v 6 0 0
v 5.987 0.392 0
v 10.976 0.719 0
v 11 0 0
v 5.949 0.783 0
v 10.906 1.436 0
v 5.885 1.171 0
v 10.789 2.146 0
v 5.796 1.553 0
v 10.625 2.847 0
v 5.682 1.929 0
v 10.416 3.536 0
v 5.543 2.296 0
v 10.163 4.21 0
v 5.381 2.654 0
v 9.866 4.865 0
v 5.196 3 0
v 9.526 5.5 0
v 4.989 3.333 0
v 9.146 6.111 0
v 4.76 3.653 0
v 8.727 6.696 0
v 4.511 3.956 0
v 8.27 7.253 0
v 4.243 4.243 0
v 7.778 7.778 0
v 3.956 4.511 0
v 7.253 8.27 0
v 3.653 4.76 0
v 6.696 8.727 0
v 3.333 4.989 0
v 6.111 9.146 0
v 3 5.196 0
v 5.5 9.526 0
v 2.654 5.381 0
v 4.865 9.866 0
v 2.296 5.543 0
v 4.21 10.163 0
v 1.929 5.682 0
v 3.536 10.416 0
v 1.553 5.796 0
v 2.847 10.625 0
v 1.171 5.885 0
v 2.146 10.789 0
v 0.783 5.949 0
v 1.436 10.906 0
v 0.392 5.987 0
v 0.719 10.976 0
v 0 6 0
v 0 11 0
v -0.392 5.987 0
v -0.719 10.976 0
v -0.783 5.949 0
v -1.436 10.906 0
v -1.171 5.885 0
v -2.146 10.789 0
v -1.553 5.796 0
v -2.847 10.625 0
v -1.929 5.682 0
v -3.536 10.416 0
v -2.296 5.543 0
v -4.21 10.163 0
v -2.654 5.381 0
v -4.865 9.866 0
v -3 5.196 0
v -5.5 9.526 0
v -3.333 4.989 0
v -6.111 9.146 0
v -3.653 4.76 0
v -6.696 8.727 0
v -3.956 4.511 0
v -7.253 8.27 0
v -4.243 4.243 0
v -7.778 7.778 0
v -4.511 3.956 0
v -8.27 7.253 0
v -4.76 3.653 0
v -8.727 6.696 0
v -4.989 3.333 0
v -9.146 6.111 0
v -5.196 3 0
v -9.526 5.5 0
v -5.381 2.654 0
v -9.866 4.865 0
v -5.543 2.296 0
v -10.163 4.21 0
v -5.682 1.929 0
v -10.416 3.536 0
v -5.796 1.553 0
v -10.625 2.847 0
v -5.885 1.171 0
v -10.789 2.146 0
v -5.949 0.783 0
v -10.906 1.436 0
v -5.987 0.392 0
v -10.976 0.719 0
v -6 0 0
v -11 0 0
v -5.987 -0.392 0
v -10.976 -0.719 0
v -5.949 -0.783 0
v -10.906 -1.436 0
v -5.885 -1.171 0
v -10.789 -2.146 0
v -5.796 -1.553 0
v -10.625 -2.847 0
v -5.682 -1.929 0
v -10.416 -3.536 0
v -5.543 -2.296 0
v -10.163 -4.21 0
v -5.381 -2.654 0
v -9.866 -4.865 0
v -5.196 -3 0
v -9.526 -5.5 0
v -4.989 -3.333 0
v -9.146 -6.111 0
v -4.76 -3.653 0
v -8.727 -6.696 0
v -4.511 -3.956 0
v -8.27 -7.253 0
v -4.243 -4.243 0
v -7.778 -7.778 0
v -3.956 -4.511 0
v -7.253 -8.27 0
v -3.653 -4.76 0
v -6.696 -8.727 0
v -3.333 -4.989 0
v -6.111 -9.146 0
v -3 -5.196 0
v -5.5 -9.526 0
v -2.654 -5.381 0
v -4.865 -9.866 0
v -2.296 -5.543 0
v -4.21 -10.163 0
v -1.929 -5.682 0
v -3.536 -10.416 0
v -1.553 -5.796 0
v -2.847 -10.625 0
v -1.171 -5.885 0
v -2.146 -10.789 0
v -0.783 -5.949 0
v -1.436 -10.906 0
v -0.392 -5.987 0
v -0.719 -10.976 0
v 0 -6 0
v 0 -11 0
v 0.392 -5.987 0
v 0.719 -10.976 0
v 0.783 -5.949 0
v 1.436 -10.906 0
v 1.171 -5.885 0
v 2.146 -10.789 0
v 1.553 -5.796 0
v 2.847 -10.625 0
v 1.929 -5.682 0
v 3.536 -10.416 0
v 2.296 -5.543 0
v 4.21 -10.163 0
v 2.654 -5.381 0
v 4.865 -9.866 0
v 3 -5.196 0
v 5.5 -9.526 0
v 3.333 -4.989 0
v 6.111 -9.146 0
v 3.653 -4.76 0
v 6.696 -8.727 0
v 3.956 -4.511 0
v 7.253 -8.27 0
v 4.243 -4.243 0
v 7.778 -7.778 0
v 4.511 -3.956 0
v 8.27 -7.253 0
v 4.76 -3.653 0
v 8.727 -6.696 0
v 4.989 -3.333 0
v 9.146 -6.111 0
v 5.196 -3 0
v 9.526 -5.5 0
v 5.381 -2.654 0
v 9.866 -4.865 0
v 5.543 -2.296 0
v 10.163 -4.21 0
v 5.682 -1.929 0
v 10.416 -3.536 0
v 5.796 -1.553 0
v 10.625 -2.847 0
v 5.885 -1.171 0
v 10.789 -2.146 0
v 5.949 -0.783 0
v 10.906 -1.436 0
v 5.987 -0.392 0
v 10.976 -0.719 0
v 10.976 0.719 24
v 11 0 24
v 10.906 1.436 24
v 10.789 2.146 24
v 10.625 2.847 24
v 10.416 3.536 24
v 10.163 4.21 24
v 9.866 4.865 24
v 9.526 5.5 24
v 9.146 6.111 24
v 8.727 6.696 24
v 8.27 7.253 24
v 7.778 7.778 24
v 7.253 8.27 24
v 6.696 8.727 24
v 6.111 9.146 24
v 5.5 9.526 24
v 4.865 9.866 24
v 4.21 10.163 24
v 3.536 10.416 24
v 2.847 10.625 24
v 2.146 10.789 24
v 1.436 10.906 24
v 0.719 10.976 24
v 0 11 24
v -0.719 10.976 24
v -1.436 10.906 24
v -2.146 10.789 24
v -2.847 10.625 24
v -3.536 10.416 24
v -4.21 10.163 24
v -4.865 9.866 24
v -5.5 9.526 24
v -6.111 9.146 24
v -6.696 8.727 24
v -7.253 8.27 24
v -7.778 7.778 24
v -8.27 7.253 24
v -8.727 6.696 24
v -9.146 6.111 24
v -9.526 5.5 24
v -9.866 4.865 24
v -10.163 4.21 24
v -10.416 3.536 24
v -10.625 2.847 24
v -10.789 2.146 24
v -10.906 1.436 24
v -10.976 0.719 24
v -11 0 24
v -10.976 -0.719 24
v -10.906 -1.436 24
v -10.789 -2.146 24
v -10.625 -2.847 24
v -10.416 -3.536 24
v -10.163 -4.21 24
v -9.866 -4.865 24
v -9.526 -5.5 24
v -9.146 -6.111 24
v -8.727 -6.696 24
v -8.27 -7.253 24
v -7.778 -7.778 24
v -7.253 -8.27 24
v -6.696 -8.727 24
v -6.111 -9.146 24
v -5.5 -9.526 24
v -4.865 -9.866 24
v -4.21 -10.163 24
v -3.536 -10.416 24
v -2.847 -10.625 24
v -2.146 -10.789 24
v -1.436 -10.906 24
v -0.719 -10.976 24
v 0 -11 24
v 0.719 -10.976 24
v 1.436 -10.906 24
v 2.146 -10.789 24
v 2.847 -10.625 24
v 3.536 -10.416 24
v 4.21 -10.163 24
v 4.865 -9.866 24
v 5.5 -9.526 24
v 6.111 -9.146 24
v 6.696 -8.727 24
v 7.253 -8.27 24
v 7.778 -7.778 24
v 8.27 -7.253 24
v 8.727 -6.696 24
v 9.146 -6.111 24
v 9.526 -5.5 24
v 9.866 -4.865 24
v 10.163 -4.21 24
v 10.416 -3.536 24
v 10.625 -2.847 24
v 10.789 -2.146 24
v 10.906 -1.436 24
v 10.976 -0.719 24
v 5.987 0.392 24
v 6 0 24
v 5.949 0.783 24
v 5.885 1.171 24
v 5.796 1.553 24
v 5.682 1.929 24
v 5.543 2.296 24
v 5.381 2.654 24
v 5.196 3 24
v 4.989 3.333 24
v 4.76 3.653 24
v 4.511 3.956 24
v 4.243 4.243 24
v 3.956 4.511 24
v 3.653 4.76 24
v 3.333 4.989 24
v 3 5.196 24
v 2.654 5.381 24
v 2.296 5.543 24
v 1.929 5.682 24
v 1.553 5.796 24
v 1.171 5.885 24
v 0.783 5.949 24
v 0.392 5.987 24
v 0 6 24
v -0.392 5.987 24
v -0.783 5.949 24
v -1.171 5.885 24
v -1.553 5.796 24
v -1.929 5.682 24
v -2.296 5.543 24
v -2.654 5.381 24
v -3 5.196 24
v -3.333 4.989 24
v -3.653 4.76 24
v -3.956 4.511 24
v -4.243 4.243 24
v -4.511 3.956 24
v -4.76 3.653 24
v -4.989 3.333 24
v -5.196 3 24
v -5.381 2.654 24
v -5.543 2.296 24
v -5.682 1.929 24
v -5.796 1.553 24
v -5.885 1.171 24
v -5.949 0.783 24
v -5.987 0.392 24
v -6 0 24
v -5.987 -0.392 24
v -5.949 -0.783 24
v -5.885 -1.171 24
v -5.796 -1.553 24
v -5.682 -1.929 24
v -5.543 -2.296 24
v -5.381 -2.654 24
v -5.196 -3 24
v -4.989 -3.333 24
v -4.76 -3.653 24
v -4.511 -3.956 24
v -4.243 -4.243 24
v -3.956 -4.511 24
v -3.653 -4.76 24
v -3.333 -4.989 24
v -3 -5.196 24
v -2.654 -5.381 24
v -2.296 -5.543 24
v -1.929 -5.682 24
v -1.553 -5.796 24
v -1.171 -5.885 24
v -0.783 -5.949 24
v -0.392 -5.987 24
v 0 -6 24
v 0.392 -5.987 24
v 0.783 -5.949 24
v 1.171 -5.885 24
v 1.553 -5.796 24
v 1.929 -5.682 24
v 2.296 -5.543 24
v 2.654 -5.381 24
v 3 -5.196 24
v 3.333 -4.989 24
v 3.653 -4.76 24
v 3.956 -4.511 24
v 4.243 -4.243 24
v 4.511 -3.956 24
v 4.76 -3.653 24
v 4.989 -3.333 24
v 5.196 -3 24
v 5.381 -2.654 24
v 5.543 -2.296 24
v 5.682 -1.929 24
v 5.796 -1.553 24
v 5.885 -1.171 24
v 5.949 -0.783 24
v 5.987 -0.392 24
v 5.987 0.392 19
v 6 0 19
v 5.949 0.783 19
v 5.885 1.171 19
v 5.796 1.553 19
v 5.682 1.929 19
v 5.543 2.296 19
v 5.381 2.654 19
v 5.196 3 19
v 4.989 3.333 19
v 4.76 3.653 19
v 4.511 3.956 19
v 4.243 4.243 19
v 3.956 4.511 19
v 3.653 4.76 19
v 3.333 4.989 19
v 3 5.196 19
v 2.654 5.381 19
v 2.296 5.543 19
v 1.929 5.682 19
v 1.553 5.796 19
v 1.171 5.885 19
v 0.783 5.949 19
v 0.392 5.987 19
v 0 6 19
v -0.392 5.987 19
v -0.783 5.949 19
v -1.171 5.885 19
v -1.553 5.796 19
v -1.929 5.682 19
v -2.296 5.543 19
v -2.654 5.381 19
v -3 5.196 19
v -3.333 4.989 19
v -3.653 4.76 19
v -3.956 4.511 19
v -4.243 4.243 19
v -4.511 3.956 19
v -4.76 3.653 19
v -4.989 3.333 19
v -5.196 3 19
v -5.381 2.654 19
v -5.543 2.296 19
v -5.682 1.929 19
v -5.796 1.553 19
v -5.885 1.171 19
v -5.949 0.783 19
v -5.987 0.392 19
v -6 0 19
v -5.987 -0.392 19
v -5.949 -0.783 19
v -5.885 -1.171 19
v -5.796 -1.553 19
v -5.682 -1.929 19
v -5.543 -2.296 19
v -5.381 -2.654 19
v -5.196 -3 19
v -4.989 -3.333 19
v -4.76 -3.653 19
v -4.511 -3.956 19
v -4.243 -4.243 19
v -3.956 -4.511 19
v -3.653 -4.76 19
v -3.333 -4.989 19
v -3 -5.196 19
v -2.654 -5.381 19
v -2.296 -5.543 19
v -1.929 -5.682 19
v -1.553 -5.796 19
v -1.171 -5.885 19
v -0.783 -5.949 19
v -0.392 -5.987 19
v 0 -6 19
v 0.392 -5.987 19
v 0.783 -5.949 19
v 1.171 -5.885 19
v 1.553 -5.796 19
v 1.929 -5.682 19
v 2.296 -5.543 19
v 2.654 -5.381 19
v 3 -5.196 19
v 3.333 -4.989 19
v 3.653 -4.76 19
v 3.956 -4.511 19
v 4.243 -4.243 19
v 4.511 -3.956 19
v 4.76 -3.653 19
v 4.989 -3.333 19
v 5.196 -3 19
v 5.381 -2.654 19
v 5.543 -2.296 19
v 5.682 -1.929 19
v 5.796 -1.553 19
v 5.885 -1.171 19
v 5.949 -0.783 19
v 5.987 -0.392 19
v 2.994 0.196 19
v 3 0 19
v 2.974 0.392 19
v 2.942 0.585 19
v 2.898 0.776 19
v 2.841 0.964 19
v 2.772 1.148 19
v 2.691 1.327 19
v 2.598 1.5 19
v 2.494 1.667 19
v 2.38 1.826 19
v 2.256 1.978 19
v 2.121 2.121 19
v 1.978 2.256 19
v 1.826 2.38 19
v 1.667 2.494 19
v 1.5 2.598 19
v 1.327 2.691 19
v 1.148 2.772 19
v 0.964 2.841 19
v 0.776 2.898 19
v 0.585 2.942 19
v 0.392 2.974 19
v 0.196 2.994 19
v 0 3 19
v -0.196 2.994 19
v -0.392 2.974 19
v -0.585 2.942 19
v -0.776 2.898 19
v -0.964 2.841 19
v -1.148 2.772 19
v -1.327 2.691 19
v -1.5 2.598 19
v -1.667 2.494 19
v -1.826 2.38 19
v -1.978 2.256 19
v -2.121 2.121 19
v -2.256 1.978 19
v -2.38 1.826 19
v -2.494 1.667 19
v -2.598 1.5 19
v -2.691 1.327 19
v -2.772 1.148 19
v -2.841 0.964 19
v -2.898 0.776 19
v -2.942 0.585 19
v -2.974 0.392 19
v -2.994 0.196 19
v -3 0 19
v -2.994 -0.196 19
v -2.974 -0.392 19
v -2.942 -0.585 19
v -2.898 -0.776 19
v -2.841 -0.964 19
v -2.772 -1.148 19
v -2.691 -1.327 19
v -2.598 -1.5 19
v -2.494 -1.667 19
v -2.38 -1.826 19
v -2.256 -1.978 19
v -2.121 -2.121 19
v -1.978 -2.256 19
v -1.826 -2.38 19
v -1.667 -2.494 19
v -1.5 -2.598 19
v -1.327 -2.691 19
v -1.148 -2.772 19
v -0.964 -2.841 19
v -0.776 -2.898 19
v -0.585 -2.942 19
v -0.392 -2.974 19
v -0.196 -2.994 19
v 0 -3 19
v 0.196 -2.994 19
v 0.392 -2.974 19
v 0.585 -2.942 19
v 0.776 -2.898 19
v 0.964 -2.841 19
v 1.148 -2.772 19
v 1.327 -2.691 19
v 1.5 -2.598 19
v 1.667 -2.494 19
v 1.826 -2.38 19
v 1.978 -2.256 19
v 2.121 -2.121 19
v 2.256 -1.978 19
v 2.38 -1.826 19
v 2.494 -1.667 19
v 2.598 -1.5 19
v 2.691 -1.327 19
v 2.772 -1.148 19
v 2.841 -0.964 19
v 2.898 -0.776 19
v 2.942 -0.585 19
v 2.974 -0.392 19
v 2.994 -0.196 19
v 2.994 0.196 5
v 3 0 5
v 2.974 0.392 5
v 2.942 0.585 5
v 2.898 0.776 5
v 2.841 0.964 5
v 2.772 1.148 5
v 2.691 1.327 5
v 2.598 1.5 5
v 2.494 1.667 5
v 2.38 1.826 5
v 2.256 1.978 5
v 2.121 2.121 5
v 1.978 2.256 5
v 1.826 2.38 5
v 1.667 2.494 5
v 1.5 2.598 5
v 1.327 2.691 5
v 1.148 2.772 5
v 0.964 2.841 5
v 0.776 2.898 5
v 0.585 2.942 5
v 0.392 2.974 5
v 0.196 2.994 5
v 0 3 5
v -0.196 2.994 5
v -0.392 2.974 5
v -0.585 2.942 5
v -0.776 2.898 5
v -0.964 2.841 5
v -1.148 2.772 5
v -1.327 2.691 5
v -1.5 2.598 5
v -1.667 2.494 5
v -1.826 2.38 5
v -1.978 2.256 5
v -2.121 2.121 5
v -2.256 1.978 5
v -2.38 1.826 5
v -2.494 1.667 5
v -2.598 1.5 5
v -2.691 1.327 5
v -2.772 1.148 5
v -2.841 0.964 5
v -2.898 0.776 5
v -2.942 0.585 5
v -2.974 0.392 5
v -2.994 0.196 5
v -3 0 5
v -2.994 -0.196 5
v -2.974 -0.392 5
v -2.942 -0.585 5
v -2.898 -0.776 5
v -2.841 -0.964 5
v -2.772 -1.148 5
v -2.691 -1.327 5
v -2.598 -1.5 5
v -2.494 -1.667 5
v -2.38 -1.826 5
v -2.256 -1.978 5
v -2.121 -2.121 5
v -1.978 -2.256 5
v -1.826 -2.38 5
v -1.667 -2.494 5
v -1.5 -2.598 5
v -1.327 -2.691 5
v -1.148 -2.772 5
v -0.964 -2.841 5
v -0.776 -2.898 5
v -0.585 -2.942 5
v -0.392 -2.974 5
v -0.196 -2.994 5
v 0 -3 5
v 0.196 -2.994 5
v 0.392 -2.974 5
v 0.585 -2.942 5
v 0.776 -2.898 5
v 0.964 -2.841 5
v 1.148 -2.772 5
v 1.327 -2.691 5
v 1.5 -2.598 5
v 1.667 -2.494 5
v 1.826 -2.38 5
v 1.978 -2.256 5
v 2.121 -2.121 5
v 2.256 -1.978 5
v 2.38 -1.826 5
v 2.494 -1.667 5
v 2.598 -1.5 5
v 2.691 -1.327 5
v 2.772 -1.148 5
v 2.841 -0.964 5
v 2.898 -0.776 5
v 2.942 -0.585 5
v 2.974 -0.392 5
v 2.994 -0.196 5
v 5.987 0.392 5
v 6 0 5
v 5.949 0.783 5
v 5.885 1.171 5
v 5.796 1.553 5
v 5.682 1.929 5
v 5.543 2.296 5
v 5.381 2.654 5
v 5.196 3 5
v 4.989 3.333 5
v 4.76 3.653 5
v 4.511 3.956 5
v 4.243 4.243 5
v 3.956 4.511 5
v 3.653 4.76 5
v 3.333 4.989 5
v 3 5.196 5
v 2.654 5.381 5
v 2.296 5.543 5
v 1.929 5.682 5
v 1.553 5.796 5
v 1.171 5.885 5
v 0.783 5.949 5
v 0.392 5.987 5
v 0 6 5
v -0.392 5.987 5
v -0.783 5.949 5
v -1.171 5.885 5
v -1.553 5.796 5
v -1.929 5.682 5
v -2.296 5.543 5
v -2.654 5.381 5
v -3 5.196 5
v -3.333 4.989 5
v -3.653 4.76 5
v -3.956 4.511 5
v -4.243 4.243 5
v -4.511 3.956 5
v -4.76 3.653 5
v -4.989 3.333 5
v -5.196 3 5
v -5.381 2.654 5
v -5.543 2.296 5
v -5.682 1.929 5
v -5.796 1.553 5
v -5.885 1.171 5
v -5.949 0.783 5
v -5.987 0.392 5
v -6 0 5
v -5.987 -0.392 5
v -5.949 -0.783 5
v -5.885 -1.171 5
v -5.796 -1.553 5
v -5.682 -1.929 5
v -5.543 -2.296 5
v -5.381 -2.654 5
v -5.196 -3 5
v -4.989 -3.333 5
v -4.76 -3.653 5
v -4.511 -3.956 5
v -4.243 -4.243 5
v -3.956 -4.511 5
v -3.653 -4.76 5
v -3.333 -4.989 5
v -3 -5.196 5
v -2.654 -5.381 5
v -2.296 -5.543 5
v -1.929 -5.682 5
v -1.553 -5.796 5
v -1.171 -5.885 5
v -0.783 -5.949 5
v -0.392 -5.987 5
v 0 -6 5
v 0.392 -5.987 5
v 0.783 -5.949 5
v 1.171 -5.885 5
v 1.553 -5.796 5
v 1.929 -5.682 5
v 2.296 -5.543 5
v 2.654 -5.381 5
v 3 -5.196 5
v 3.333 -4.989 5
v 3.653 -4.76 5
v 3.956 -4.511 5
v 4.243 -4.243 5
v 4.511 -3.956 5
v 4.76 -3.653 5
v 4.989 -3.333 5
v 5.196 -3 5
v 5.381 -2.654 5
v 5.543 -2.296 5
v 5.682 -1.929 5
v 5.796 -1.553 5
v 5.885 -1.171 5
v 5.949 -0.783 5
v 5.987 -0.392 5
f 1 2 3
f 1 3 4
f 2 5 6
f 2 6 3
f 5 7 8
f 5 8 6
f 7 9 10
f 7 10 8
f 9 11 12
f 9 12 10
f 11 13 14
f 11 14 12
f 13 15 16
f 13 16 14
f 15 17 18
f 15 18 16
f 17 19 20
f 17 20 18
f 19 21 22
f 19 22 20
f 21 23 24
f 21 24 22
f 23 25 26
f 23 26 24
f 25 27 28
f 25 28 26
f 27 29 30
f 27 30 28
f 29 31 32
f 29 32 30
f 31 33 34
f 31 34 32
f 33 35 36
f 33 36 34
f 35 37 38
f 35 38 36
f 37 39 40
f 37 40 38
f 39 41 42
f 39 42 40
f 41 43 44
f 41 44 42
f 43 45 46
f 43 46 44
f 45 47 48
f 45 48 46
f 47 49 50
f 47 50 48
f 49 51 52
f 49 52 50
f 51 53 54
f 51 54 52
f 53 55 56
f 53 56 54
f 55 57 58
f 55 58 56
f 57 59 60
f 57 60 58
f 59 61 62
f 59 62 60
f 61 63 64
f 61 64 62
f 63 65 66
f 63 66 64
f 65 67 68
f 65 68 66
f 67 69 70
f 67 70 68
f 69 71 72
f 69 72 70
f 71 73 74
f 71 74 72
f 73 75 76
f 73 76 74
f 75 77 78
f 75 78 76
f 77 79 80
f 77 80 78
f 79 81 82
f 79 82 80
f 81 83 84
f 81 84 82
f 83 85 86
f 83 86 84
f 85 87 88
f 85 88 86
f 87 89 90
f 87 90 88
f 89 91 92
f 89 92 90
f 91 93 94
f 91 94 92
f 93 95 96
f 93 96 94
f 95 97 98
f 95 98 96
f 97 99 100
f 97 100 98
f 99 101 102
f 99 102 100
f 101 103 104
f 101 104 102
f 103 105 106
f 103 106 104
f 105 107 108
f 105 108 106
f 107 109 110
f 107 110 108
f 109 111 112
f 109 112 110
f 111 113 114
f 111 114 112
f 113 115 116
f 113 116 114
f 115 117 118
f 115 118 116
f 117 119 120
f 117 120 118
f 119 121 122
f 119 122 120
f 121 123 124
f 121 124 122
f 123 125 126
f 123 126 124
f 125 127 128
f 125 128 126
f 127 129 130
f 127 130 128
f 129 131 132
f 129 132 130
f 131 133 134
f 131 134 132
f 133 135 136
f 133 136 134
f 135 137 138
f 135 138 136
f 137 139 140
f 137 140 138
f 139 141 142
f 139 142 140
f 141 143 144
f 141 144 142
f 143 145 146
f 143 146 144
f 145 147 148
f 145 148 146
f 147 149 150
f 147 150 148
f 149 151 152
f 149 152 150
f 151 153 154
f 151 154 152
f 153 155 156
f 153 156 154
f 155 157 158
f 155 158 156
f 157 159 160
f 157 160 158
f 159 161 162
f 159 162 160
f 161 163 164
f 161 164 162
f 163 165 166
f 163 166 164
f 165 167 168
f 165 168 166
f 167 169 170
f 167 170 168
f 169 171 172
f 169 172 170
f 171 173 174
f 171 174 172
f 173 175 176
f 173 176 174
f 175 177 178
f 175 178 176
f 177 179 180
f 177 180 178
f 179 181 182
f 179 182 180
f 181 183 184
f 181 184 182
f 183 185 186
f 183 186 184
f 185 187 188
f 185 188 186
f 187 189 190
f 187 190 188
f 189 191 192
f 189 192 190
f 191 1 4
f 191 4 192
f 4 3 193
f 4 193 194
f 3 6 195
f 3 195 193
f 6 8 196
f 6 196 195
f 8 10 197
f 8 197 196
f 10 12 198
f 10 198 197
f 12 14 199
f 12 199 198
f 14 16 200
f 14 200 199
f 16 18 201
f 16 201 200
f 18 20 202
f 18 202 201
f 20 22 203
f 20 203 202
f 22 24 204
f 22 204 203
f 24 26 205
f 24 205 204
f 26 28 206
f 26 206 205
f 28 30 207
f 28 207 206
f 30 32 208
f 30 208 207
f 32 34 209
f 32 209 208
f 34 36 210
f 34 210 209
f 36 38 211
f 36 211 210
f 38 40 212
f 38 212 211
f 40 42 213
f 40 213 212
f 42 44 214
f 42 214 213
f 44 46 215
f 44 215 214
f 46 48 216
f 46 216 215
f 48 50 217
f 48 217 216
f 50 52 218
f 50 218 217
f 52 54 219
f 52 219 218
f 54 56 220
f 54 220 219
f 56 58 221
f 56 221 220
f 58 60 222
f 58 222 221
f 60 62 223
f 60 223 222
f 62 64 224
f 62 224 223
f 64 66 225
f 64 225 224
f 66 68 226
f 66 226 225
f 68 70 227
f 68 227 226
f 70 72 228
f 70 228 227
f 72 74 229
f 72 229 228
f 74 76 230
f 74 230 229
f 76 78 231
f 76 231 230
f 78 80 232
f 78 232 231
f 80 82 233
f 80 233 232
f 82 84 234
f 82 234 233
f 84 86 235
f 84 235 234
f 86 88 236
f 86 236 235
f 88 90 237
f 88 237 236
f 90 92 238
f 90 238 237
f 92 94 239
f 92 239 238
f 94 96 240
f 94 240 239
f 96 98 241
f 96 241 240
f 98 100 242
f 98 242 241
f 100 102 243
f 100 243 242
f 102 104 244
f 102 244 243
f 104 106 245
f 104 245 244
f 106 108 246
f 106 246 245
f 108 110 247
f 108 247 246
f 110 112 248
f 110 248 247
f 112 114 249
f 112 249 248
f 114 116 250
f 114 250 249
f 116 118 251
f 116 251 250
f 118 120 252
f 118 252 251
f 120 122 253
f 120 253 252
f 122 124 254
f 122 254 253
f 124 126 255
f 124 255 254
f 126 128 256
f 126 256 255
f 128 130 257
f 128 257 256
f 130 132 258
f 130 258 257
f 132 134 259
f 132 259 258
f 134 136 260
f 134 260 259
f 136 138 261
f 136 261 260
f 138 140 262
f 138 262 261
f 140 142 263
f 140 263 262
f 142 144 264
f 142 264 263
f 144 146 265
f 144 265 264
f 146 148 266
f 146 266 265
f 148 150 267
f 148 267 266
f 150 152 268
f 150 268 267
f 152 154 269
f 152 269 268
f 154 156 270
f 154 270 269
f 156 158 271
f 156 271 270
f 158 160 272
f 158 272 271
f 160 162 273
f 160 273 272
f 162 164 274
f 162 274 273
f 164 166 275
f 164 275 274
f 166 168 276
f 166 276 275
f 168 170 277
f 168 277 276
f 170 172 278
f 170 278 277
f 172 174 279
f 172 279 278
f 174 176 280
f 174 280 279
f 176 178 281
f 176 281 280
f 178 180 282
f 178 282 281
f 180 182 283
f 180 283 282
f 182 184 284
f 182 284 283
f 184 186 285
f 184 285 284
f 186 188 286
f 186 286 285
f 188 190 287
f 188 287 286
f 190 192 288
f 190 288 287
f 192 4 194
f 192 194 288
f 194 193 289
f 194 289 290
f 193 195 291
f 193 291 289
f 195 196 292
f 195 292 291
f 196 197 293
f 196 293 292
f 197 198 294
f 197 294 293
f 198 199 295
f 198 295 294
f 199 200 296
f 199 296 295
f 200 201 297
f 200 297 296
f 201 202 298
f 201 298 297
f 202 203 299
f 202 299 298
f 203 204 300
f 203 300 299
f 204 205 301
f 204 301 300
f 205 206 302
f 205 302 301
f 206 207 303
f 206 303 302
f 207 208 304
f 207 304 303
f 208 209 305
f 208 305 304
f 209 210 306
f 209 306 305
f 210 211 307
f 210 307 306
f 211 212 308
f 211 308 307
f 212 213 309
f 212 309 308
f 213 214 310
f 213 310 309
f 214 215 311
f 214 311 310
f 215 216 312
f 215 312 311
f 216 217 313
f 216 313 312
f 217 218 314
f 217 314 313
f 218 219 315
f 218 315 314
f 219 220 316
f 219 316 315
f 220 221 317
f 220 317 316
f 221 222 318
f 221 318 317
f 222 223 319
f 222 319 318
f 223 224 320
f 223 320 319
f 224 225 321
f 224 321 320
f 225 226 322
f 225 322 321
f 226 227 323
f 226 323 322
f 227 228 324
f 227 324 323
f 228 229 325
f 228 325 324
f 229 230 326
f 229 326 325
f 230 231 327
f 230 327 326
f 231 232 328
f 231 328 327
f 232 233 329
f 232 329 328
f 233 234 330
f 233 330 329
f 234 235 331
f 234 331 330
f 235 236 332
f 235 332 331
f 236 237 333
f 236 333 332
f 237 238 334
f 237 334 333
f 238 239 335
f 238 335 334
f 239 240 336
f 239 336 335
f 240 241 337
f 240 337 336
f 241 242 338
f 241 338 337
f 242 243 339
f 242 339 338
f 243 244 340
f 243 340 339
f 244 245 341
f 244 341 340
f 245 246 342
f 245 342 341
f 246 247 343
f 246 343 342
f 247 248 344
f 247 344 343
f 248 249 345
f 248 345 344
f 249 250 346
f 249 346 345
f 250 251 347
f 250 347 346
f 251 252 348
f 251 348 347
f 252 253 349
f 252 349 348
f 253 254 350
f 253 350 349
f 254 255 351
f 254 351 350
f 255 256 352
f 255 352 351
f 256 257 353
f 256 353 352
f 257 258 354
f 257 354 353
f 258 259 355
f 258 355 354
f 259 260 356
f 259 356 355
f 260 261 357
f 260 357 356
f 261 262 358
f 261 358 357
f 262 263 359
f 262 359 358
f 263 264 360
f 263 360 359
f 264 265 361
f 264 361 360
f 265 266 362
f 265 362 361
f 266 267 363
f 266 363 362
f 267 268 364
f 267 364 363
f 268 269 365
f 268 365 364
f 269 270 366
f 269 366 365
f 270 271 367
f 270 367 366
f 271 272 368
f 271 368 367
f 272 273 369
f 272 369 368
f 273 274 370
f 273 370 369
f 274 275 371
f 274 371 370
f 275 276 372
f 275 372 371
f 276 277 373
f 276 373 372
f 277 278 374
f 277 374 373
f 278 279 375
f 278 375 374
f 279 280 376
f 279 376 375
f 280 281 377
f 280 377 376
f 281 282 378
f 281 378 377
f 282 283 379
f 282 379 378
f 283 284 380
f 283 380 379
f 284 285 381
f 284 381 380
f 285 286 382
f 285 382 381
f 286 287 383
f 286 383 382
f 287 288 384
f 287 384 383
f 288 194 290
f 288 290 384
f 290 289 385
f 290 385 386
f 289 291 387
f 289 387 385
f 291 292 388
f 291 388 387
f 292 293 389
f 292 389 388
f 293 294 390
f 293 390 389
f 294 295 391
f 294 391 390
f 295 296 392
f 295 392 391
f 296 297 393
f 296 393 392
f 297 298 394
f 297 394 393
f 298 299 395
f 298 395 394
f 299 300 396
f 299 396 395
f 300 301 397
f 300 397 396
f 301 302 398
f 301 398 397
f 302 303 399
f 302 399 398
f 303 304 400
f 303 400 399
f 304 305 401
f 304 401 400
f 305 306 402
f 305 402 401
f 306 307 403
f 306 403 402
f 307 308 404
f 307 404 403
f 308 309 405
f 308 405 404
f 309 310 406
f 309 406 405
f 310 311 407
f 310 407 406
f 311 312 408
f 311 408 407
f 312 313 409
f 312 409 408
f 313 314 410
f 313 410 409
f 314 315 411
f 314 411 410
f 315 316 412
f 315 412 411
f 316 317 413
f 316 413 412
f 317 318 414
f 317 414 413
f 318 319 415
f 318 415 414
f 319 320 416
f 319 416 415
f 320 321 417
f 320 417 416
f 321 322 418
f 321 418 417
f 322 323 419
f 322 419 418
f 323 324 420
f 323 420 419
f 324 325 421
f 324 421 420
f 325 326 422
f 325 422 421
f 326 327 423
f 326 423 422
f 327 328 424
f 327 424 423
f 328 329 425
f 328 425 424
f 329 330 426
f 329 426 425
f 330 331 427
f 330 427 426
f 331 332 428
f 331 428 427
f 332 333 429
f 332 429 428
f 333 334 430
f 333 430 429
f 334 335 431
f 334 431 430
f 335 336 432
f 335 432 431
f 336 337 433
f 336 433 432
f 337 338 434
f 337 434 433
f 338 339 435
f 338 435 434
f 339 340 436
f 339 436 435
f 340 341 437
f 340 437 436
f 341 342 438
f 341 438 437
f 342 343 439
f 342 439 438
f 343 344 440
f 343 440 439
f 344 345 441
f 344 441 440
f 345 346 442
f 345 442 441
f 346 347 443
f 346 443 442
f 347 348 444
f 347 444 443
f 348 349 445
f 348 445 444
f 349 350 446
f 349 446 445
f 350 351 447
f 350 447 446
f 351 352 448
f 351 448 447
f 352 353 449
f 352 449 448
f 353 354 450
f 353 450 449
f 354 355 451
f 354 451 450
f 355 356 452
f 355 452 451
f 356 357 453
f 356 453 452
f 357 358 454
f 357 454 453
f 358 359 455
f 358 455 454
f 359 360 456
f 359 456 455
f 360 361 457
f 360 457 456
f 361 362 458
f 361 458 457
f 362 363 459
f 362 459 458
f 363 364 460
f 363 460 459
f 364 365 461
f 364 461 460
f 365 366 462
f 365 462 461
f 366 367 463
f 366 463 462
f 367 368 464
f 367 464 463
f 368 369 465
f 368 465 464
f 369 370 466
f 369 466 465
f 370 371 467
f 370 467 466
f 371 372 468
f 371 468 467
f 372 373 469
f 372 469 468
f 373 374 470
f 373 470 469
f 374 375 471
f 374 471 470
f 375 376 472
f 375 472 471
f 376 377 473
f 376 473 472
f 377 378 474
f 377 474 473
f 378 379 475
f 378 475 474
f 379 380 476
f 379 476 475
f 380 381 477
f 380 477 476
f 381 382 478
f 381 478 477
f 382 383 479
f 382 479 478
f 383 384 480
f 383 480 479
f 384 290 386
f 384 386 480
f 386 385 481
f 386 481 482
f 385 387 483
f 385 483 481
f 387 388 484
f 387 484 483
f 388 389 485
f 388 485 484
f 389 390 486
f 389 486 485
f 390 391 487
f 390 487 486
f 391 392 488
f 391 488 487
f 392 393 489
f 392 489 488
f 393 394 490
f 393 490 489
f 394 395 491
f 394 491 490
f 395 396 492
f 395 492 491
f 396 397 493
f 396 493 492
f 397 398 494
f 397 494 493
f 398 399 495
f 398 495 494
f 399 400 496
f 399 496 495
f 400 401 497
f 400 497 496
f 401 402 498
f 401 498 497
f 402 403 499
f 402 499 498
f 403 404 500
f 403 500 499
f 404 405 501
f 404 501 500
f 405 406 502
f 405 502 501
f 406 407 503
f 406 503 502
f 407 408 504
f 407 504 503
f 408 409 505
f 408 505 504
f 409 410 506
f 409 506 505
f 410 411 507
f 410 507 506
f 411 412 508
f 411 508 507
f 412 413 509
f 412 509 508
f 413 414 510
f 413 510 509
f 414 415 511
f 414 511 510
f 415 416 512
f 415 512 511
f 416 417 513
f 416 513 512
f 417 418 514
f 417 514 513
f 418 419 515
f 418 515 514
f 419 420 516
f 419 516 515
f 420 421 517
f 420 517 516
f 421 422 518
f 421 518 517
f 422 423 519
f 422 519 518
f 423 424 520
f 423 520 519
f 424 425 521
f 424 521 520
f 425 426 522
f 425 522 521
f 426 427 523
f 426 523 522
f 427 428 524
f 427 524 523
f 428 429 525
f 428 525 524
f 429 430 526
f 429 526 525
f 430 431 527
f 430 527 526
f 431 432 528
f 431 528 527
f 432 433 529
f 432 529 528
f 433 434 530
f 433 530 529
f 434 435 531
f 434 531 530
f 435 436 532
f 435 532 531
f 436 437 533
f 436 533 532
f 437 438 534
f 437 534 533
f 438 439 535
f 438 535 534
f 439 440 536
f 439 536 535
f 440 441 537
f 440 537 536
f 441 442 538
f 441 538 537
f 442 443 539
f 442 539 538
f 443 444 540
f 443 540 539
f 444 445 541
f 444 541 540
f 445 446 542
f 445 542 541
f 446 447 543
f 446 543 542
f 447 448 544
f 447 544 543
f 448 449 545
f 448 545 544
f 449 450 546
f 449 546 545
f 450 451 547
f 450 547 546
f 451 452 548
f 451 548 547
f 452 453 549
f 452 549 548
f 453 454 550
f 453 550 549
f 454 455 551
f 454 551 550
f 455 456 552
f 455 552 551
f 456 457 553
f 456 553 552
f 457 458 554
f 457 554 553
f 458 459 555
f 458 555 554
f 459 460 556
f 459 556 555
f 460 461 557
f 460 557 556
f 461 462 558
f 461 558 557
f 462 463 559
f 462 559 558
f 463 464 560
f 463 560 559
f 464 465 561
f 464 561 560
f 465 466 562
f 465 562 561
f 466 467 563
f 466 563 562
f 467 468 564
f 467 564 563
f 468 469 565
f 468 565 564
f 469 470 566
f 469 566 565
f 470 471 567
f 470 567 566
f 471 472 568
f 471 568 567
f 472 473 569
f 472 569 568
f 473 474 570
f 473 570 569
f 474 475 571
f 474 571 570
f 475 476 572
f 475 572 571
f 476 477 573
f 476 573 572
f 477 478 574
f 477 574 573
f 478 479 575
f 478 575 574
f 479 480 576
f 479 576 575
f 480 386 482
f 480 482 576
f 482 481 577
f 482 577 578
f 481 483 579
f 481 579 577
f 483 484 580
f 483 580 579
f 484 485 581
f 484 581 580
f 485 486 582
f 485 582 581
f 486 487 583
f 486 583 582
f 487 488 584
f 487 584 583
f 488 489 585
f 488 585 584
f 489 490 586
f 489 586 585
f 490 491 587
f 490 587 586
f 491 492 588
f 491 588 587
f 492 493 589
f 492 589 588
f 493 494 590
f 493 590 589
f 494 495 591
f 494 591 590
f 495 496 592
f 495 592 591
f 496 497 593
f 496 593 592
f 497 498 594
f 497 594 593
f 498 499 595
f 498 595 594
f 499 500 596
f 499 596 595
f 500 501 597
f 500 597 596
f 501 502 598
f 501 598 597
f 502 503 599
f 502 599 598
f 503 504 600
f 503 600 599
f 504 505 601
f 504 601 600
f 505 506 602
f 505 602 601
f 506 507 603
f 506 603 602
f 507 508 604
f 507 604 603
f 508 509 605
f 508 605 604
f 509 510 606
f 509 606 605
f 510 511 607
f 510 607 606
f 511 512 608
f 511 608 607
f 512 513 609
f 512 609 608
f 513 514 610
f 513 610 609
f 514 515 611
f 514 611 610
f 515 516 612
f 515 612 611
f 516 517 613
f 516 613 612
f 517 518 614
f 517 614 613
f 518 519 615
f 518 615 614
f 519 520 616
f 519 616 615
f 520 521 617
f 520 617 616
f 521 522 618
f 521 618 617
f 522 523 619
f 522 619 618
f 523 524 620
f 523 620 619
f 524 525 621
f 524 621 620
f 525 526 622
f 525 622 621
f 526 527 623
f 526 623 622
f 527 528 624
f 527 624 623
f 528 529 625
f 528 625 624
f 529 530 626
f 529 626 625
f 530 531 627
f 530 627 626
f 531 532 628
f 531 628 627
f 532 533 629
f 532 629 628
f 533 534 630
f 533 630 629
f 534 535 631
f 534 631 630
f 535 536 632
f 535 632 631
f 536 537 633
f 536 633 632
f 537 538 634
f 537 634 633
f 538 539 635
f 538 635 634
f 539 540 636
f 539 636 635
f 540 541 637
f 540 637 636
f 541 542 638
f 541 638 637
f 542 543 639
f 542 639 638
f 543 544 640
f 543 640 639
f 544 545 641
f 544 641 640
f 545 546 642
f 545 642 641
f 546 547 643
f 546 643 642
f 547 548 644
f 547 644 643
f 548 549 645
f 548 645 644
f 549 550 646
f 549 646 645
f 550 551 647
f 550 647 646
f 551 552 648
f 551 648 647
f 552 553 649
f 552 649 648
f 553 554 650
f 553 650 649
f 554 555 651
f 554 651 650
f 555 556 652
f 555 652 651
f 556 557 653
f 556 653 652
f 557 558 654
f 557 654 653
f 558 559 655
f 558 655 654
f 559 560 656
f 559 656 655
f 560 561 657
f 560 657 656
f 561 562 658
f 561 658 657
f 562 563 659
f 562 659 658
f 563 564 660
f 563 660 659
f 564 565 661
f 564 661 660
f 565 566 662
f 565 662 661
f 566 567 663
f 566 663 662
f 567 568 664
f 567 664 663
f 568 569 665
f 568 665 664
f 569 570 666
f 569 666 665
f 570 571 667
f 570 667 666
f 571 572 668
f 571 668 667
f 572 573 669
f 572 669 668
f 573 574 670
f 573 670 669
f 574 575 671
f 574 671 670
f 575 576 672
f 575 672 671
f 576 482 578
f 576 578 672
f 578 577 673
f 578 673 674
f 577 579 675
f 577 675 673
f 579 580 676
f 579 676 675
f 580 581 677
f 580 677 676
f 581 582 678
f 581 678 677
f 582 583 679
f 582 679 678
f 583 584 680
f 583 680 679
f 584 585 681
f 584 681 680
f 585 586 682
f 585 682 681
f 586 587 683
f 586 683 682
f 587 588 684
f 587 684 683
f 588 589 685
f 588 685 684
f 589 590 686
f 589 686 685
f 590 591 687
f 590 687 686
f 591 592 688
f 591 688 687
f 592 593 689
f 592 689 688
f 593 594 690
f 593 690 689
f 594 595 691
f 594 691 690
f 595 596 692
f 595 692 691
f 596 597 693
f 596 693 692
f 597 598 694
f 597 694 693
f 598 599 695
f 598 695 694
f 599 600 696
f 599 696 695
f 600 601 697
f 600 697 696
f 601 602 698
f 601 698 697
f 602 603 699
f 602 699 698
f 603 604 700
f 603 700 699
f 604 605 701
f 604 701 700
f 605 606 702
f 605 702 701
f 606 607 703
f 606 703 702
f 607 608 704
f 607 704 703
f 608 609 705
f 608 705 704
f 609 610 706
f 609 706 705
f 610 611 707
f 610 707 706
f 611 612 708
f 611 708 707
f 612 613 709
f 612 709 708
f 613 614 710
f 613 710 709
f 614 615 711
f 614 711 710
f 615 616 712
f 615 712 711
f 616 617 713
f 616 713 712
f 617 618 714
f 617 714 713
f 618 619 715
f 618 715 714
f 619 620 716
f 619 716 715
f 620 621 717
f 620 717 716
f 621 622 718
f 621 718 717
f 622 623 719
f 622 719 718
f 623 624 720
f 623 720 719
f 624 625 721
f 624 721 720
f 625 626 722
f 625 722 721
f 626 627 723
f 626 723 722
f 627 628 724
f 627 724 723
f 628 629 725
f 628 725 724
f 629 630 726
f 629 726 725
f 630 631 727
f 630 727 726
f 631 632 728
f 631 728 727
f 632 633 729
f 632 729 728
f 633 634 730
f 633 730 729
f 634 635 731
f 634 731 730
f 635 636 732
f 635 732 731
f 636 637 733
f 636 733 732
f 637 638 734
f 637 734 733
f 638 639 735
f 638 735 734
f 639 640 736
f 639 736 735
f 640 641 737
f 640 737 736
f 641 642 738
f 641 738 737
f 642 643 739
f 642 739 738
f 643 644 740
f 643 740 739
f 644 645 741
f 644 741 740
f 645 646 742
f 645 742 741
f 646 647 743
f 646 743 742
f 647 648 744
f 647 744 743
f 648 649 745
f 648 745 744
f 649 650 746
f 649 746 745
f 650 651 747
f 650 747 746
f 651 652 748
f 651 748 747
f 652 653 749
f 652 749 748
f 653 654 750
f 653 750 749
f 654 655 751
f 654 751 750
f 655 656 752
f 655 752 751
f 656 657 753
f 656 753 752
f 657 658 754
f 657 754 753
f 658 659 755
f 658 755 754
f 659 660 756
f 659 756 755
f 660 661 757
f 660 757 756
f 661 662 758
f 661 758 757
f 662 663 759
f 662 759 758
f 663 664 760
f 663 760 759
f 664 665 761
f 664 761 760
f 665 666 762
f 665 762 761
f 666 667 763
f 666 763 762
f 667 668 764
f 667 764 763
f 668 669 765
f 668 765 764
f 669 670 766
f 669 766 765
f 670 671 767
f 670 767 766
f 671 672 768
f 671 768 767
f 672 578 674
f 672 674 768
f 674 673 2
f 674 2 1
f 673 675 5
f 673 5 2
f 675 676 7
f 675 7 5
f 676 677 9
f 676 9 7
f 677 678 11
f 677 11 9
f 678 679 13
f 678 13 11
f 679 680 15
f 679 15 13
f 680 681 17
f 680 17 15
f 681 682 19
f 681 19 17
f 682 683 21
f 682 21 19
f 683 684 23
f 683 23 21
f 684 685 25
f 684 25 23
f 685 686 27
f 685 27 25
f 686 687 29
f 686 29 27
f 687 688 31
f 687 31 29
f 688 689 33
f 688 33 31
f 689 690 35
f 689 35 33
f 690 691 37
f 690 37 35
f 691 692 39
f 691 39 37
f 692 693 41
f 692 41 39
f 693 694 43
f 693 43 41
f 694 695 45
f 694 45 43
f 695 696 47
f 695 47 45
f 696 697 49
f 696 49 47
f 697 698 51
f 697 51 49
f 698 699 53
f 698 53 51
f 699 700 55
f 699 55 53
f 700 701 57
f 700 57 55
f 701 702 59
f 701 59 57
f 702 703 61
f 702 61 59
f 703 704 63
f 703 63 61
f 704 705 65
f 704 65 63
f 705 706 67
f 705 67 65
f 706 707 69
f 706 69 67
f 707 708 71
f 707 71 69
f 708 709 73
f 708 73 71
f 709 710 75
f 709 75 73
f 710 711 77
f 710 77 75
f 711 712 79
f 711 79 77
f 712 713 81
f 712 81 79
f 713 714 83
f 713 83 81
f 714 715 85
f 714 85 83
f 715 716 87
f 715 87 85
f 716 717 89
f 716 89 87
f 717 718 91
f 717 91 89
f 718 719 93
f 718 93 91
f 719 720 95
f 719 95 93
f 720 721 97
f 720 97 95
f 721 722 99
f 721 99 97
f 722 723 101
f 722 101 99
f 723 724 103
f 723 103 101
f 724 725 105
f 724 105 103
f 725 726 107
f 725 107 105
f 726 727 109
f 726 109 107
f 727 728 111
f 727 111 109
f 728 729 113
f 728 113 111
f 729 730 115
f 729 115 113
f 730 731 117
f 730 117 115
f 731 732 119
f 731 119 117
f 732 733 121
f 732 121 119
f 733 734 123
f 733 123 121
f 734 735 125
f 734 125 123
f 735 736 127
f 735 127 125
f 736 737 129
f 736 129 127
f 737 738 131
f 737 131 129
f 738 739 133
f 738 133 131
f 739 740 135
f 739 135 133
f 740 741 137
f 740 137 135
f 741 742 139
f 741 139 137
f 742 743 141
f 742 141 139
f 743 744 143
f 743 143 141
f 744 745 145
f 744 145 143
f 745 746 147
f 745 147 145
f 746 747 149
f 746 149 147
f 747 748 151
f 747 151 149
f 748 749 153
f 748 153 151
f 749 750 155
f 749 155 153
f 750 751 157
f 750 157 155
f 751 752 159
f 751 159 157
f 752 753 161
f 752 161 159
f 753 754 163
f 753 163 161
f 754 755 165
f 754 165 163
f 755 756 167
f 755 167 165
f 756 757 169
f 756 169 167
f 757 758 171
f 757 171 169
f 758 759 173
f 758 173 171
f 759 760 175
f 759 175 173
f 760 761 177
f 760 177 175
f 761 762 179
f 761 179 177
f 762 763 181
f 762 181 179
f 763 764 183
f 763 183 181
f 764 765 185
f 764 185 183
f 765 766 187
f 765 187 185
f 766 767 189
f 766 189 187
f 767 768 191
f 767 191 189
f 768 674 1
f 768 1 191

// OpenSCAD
// Original MechIntel educational model. CC0-1.0. Units: mm.
// Not a standardized or load-rated component.
$fn=96;
// Section points: [radius, height], mm. Edit to change the profile.
section=[[6, 0], [11, 0], [11, 24], [6, 24], [6, 19], [3, 19], [3, 5], [6, 5]];
rotate_extrude($fn=96) polygon(points=section);
